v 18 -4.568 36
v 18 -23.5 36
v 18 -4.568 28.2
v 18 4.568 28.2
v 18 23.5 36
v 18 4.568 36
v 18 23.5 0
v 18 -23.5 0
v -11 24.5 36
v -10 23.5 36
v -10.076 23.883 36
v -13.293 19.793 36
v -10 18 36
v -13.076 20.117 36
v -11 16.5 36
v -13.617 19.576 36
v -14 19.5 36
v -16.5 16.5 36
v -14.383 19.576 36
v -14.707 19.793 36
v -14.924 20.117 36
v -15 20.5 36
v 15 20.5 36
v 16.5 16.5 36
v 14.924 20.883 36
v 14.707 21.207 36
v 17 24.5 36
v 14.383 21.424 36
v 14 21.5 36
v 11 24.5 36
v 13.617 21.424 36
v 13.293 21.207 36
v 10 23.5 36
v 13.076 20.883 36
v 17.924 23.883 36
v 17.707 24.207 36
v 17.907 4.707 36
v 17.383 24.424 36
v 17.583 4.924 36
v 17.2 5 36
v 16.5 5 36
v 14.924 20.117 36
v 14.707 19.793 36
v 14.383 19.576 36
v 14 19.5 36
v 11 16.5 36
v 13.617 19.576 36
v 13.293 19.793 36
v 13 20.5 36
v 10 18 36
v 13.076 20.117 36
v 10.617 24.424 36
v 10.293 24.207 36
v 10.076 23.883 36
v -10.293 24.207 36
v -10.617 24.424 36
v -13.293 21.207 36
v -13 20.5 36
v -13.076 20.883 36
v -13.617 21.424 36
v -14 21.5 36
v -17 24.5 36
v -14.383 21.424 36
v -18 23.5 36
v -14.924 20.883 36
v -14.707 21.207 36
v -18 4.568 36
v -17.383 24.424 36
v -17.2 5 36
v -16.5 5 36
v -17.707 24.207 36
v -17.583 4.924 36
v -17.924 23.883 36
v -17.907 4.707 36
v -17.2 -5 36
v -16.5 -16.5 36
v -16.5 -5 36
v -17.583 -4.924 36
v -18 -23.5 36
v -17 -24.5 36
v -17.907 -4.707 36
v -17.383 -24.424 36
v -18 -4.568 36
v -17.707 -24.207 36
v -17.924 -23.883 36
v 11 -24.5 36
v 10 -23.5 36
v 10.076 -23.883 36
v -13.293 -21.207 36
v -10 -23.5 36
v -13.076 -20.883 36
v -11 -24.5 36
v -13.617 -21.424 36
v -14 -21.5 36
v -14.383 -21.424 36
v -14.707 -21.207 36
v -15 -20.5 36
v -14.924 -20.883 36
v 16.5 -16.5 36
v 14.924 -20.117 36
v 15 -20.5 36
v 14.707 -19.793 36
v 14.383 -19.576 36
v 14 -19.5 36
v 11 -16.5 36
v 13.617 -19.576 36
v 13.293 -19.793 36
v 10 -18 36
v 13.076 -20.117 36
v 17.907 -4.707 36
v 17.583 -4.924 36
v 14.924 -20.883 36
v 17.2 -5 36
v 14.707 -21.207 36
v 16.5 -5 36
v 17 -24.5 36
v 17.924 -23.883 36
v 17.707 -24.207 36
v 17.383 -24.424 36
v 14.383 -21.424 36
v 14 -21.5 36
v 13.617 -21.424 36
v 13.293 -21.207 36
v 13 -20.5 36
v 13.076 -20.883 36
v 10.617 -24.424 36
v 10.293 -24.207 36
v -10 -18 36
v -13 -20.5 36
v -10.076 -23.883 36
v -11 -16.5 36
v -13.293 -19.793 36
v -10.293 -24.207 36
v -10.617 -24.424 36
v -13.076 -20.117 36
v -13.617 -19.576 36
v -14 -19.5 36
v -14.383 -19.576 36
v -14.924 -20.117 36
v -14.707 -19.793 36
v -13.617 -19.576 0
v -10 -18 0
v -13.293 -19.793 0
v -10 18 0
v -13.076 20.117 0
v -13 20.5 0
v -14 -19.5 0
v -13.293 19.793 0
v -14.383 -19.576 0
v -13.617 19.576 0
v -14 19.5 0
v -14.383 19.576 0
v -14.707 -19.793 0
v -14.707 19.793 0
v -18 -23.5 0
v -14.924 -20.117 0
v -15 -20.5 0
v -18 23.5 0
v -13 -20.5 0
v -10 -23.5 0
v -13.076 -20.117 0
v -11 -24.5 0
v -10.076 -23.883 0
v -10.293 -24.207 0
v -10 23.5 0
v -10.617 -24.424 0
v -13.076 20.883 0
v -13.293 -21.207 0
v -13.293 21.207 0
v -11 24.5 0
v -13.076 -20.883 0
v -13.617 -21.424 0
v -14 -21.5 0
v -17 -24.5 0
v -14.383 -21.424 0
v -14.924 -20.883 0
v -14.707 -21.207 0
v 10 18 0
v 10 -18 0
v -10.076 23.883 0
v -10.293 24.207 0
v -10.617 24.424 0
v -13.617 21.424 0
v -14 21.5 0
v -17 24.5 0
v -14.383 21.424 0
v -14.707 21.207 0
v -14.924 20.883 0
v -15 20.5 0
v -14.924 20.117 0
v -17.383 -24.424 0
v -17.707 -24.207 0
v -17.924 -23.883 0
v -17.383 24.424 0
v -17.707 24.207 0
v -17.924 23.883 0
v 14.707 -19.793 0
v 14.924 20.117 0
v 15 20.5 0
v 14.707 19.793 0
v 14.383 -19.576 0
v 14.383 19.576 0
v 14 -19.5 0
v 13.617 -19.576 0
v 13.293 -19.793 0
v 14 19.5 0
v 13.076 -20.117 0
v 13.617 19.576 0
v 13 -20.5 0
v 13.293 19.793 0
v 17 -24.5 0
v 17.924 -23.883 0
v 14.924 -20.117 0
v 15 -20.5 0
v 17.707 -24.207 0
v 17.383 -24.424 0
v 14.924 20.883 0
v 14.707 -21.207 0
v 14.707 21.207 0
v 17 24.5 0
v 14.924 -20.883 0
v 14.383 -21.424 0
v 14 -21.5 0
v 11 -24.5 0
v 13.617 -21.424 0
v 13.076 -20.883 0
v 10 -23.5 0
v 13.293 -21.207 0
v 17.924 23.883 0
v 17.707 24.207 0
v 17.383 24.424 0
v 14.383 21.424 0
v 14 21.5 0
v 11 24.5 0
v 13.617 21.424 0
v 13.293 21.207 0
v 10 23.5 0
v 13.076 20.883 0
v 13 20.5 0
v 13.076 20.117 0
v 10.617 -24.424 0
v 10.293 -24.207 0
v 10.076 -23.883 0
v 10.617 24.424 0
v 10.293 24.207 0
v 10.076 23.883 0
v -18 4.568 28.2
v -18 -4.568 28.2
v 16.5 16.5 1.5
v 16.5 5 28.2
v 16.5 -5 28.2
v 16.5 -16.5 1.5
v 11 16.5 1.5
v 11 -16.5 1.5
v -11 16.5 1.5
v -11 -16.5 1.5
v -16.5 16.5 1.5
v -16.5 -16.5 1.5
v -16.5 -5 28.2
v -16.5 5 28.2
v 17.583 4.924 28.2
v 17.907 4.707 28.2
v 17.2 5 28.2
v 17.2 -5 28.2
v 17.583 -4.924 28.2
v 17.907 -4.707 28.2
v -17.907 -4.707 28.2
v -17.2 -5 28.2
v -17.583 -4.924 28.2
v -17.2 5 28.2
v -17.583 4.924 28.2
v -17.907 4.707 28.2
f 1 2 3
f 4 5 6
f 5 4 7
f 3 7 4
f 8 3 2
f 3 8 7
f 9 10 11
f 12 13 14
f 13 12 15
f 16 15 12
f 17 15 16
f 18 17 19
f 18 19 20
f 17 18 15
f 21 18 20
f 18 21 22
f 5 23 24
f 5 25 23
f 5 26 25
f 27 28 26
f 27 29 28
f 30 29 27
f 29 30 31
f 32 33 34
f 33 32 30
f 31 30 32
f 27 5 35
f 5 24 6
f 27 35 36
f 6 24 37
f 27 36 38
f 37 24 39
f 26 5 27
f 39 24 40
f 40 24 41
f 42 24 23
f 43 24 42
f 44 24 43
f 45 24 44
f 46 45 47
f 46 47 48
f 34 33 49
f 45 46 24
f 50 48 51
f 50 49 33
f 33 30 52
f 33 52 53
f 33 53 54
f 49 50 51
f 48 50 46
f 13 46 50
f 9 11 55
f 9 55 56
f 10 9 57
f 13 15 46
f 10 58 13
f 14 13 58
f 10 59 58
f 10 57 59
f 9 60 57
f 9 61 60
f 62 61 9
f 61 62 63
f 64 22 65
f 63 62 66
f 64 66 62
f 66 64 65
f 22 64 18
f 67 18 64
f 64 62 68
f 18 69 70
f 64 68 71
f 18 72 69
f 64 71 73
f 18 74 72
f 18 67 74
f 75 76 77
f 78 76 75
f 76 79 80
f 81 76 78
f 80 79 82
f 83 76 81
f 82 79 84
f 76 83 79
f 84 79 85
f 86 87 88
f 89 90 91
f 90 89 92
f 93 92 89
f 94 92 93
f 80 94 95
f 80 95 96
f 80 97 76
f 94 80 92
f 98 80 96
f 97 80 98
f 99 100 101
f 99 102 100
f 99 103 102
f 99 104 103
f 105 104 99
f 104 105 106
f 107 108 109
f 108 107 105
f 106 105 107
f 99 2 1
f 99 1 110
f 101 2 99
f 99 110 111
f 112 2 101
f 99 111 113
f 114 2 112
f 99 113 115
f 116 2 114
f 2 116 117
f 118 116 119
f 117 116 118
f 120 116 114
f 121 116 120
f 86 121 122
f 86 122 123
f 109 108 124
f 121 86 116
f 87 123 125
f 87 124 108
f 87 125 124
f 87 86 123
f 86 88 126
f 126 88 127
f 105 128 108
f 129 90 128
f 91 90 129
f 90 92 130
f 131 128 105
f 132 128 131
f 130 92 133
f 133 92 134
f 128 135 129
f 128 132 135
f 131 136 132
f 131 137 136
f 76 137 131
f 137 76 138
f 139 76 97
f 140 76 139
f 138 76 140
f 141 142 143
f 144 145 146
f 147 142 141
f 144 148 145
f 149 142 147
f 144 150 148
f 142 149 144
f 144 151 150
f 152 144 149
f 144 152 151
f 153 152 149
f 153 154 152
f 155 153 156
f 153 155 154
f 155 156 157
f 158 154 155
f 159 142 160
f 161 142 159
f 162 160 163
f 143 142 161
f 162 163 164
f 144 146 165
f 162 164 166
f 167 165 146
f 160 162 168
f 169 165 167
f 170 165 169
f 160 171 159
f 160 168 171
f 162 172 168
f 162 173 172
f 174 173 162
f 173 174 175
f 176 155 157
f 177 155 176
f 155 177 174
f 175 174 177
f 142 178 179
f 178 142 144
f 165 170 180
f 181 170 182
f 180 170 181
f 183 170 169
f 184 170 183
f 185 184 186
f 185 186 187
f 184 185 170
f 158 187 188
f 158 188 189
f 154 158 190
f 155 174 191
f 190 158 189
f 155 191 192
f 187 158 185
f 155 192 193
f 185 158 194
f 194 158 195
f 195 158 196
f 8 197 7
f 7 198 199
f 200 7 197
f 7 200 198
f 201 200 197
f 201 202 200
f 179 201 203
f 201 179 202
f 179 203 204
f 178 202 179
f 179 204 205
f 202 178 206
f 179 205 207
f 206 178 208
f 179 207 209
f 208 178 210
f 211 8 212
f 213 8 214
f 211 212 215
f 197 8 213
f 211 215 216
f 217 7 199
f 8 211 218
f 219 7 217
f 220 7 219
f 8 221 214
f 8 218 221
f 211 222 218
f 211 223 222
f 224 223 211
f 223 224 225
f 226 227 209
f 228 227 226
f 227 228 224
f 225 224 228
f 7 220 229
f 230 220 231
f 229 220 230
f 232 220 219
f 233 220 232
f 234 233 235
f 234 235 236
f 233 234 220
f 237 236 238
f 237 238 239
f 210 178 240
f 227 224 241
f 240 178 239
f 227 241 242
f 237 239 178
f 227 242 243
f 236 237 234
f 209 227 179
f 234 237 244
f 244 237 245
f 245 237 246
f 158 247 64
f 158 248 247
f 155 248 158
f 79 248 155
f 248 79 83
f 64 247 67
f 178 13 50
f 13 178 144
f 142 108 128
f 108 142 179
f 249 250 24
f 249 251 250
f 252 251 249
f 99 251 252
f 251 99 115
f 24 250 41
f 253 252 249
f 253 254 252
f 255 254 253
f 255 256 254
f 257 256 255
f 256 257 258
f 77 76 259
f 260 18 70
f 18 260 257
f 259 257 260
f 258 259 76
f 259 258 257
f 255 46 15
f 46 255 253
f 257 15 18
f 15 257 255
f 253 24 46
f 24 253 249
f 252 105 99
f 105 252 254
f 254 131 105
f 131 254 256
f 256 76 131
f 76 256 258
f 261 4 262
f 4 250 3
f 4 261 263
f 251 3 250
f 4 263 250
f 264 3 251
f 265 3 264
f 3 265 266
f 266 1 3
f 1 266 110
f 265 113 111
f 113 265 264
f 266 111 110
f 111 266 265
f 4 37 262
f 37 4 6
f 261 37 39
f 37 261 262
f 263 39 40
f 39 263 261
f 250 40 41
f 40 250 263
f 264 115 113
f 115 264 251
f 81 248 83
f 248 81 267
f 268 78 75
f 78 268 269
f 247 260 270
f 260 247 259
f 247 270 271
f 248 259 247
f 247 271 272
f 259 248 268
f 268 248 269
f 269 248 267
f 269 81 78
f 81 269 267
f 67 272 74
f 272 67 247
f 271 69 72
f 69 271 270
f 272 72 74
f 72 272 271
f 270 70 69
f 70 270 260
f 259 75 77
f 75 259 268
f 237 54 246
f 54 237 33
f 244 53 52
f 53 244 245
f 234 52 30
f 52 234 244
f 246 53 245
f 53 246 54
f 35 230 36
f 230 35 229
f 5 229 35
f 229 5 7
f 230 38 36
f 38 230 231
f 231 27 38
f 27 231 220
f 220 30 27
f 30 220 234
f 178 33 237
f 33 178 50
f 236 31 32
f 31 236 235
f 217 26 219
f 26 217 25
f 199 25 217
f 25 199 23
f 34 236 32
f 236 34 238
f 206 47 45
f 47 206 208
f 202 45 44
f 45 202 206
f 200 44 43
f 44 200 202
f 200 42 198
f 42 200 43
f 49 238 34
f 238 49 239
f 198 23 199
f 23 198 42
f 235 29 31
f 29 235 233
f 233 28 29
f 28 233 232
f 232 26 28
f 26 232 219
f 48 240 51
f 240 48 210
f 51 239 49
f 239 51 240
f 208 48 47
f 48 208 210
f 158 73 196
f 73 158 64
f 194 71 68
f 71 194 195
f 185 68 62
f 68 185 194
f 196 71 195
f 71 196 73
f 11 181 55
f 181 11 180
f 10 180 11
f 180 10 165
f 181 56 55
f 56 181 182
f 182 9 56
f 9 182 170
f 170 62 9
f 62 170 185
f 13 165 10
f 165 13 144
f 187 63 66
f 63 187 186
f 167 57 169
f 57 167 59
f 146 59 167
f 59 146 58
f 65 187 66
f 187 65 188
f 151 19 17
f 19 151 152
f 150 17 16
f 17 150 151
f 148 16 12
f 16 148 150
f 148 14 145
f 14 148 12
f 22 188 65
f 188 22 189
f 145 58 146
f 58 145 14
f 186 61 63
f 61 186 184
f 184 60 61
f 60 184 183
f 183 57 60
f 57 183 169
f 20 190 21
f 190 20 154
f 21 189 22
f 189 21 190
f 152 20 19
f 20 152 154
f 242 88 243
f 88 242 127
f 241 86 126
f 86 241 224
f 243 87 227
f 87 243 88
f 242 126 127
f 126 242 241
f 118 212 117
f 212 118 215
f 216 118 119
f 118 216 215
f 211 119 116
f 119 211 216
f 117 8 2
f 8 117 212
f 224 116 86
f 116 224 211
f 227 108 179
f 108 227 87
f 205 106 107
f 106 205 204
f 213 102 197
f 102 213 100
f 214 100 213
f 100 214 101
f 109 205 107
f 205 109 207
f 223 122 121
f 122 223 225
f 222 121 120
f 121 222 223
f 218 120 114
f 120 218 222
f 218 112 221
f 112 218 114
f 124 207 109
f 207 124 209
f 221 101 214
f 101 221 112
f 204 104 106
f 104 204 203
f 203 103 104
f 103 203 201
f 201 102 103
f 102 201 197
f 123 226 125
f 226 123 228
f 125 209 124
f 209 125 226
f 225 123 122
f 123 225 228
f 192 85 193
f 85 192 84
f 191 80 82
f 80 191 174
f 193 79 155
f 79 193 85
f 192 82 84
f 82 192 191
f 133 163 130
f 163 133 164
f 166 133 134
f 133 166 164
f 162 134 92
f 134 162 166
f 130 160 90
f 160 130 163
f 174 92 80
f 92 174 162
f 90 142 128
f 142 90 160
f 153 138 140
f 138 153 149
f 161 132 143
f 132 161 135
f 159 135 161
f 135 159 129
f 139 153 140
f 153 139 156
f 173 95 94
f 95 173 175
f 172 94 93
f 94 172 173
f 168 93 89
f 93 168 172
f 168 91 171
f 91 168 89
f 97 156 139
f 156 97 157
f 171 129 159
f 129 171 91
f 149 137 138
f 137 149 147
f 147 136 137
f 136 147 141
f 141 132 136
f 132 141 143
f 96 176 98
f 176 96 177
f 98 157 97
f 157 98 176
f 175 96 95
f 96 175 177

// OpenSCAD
// file: consts.scad
//    consts.scad
//    Constant values for OpenSCAD model 
//
//    Copyright (C) 2026 Clear Creek Scientific
//
//    This program is free software: you can redistribute it and/or modify
//    it under the terms of the GNU General Public License as published by
//    the Free Software Foundation, either version 3 of the License, or
//    (at your option) any later version.
//
//    This program is distributed in the hope that it will be useful,
//    but WITHOUT ANY WARRANTY; without even the implied warranty of
//    MERCHANTABILITY or FITNESS FOR A PARTICULAR PURPOSE.  See the
//    GNU General Public License for more details.
//
//    You should have received a copy of the GNU General Public License
//    along with this program.  If not, see <https://www.gnu.org/licenses/>.

WALL_WIDTH = 1.5;
TAB_WIDTH = 8;
HALF_TAB_WIDTH = 0.5 * TAB_WIDTH;
TAB_HOLE_RADIUS = 1;
TAB_CORNER_RADIUS=1;
DRAIN_HOLE_HEIGHT = 5.0;
DRAIN_HOLE_RADIUS = 2.0;
SCREW_HOLE_HEIGHT = 2.0 * WALL_WIDTH;
SCREW_HOLE_RADIUS = 1.0;
SCREW_HEAD_HEIGHT = 0.5*WALL_WIDTH;
SCREW_HEAD_RADIUS = 2.5;

BATTERY_INNER_X_DIM = 69.2;
BATTERY_INNER_Y_DIM = 19.0;
BATTERY_WALL_HEIGHT = BATTERY_INNER_Y_DIM + WALL_WIDTH + 5.0;
BATTERY_OUTER_X_DIM = BATTERY_INNER_X_DIM + 2*WALL_WIDTH;
BATTERY_OUTER_Y_DIM = BATTERY_INNER_Y_DIM + 2*WALL_WIDTH;
BATTERY_X_OFFSET = 10; 

PANEL_WALL_HEIGHT = 8;
PANEL_INNER_X_DIM = 138;
PANEL_INNER_Y_DIM = 114;
PANEL_OUTER_X_DIM = PANEL_INNER_X_DIM + 2*WALL_WIDTH;
PANEL_OUTER_Y_DIM = PANEL_INNER_Y_DIM + 2*WALL_WIDTH;
PANEL_CENTER_BOX_WIDTH = 30;

PANEL_CENTER_X_LEN = 52.5;
PANEL_CENTER_Y_LEN = 41.0;

MOUNT_INNER_X_DIM = 33.0;
MOUNT_INNER_Y_DIM = MOUNT_INNER_X_DIM;
MOUNT_WALL_HEIGHT = 36.0;
MOUNT_OUTER_X_DIM = MOUNT_INNER_X_DIM + 2*WALL_WIDTH;
MOUNT_OUTER_Y_DIM = MOUNT_INNER_Y_DIM + 2*WALL_WIDTH;

CHARGER_INNER_X_DIM = MOUNT_INNER_X_DIM;
CHARGER_INNER_Y_DIM = MOUNT_INNER_Y_DIM;
CHARGER_WALL_HEIGHT = 15.0;
CHARGER_OUTER_X_DIM = CHARGER_INNER_X_DIM + 2*WALL_WIDTH;
CHARGER_OUTER_Y_DIM = CHARGER_INNER_Y_DIM + 2*WALL_WIDTH;

HINGE_TAB_WIDTH = 15.0;
HINGE_TAB_DEPTH = 3.0;
HINGE_TAB_HEIGHT = 16.0;
HINGE_TAB_RADIUS = 3.0;

HINGE_HOLE_DEPTH = HINGE_TAB_DEPTH+0.2;
// Hinge hole needs to accept a 10/32 inch screw
HINGE_HOLE_DIAMETER = 6;
HINGE_HOLE_RADIUS = 0.5*HINGE_HOLE_DIAMETER;
HINGE_HOLE_OFFSET = HINGE_TAB_HEIGHT - (HINGE_HOLE_RADIUS+3);

HINGE_GAP = 3.1;
HINGE_SUPPORT_OVERHANG = 2.0;
// file: common.scad
//    battery_box.scad
//    OpenSCAD model for a box for a PKCELL 18650 lithium-ion battery 
//
//    Copyright (C) 2026 Clear Creek Scientific
//
//    This program is free software: you can redistribute it and/or modify
//    it under the terms of the GNU General Public License as published by
//    the Free Software Foundation, either version 3 of the License, or
//    (at your option) any later version.
//
//    This program is distributed in the hope that it will be useful,
//    but WITHOUT ANY WARRANTY; without even the implied warranty of
//    MERCHANTABILITY or FITNESS FOR A PARTICULAR PURPOSE.  See the
//    GNU General Public License for more details.
//
//    You should have received a copy of the GNU General Public License
//    along with this program.  If not, see <https://www.gnu.org/licenses/>.

include <consts.scad>
use <MCAD/boxes.scad>
use <MCAD/regular_shapes.scad>

module tab(height) {
    difference() {
        roundedBox(size=[TAB_WIDTH,TAB_WIDTH,height],radius=TAB_CORNER_RADIUS,sidesonly=true);
        translate([0,0,-height]) {
            cylinder(2*height,TAB_HOLE_RADIUS,TAB_HOLE_RADIUS);
        }
    }
}

module drain_hole() {
    //cylinder(h=DRAIN_HOLE_HEIGHT,r=DRAIN_HOLE_RADIUS,center=true);
    cube([DRAIN_HOLE_HEIGHT,DRAIN_HOLE_HEIGHT,DRAIN_HOLE_HEIGHT],center=true);
}

module screw_hole() {
    union() {
        cylinder(h=SCREW_HOLE_HEIGHT,r=SCREW_HOLE_RADIUS,center=true);
        translate([0,0,0.5*WALL_WIDTH]) {
            cylinder(h=SCREW_HEAD_HEIGHT,r=SCREW_HEAD_RADIUS,center=true);
        }
    }
}

module hinge_tab(hole_offset) {
    rotate([90,0,0]) {
        difference() {
            roundedBox(size=[HINGE_TAB_WIDTH,HINGE_TAB_HEIGHT,HINGE_TAB_DEPTH],radius=HINGE_TAB_RADIUS,sidesonly=true);
            translate([0,hole_offset,0]) {
                cylinder(h=HINGE_HOLE_DEPTH+0.2,r=HINGE_HOLE_RADIUS,center=true);
            }
        }
    }
}

BASE_X_DIM = MOUNT_OUTER_X_DIM;
BASE_Y_DIM = MOUNT_OUTER_Y_DIM+2*(TAB_WIDTH-WALL_WIDTH);

module mount_hinge_base() {
    union () {
        // main base 
        difference() {
            roundedBox(size=[BASE_X_DIM,BASE_Y_DIM,WALL_WIDTH],radius=TAB_CORNER_RADIUS,sidesonly=true);

            // cut out screw holes
            translate([0.5*(BASE_X_DIM-TAB_WIDTH),0.5*(BASE_Y_DIM-TAB_WIDTH),0]) {
                screw_hole();
            }
            translate([-0.5*(BASE_X_DIM-TAB_WIDTH),0.5*(BASE_Y_DIM-TAB_WIDTH),0]) {
                screw_hole();
            }
            translate([0.5*(BASE_X_DIM-TAB_WIDTH),-0.5*(BASE_Y_DIM-TAB_WIDTH),0]) {
                screw_hole();
            }
            translate([-0.5* (BASE_X_DIM-TAB_WIDTH),-0.5*(BASE_Y_DIM-TAB_WIDTH),0]) {
                screw_hole();
            }
        } // difference

        // support base for hinges
        translate([0,0,0.5*HINGE_TAB_DEPTH]) {
            cube([HINGE_TAB_WIDTH+2*HINGE_SUPPORT_OVERHANG,4*HINGE_TAB_DEPTH+HINGE_GAP+2*HINGE_SUPPORT_OVERHANG,HINGE_TAB_DEPTH],center=true);
        }
    }
}
// main file
// mount_box.scad
//    OpenSCAD model for the solar panel mount
//
//    Copyright (C) 2026 Clear Creek Scientific
//
//    This program is free software: you can redistribute it and/or modify
//    it under the terms of the GNU General Public License as published by
//    the Free Software Foundation, either version 3 of the License, or
//    (at your option) any later version.
//
//    This program is distributed in the hope that it will be useful,
//    but WITHOUT ANY WARRANTY; without even the implied warranty of
//    MERCHANTABILITY or FITNESS FOR A PARTICULAR PURPOSE.  See the
//    GNU General Public License for more details.
//
//    You should have received a copy of the GNU General Public License
//    along with this program.  If not, see <https://www.gnu.org/licenses/>.

include <common.scad>

$fa=1;
$fs=0.4;

CUTOUT_HEIGHT = 8;
CUTOUT_WIDTH  = 10;

module basic_mount_box() {
    difference() {
    
        // outer box
        cube([MOUNT_OUTER_X_DIM,MOUNT_OUTER_Y_DIM,MOUNT_WALL_HEIGHT],center=true); 

        // cut out inner box
        translate([0,0,WALL_WIDTH]) {
            cube([MOUNT_INNER_X_DIM,MOUNT_INNER_Y_DIM,MOUNT_WALL_HEIGHT],center=true); 
        }
    } // difference
}

module basic_mount_box_with_cutouts() {
    difference() {

        translate([0,0,0.5*MOUNT_WALL_HEIGHT]) {
            basic_mount_box();
        }

        translate([0.5*MOUNT_INNER_X_DIM+0.2,0,MOUNT_WALL_HEIGHT-0.5*CUTOUT_HEIGHT+0.2]) {
            roundedBox(size=[2*WALL_WIDTH,CUTOUT_WIDTH,CUTOUT_HEIGHT],radius=TAB_CORNER_RADIUS,sidesonly=true);
        }

        translate([-0.5*MOUNT_INNER_X_DIM-0.2,0,MOUNT_WALL_HEIGHT-0.5*CUTOUT_HEIGHT+0.2]) {
            roundedBox(size=[2*WALL_WIDTH,CUTOUT_WIDTH,CUTOUT_HEIGHT],radius=TAB_CORNER_RADIUS,sidesonly=true);
        }

    } // difference
}

module mount_box() {
    union() {
        basic_mount_box_with_cutouts();
        
        // tabs
        translate([0.5*(MOUNT_OUTER_X_DIM - TAB_WIDTH),0.5*(MOUNT_INNER_Y_DIM + TAB_WIDTH),0.5*MOUNT_WALL_HEIGHT]) {
            tab(MOUNT_WALL_HEIGHT);
        }
        translate([-0.5*(MOUNT_OUTER_X_DIM - TAB_WIDTH),0.5*(MOUNT_INNER_Y_DIM + TAB_WIDTH),0.5*MOUNT_WALL_HEIGHT]) {
            tab(MOUNT_WALL_HEIGHT);
        }
        translate([0.5*(MOUNT_OUTER_X_DIM - TAB_WIDTH),-0.5*(MOUNT_INNER_Y_DIM + TAB_WIDTH),0.5*MOUNT_WALL_HEIGHT]) {
            tab(MOUNT_WALL_HEIGHT);
        }
        translate([-0.5*(MOUNT_OUTER_X_DIM - TAB_WIDTH),-0.5*(MOUNT_INNER_Y_DIM + TAB_WIDTH),0.5*MOUNT_WALL_HEIGHT]) {
            tab(MOUNT_WALL_HEIGHT);
        }
        
    }
}

mount_box();
